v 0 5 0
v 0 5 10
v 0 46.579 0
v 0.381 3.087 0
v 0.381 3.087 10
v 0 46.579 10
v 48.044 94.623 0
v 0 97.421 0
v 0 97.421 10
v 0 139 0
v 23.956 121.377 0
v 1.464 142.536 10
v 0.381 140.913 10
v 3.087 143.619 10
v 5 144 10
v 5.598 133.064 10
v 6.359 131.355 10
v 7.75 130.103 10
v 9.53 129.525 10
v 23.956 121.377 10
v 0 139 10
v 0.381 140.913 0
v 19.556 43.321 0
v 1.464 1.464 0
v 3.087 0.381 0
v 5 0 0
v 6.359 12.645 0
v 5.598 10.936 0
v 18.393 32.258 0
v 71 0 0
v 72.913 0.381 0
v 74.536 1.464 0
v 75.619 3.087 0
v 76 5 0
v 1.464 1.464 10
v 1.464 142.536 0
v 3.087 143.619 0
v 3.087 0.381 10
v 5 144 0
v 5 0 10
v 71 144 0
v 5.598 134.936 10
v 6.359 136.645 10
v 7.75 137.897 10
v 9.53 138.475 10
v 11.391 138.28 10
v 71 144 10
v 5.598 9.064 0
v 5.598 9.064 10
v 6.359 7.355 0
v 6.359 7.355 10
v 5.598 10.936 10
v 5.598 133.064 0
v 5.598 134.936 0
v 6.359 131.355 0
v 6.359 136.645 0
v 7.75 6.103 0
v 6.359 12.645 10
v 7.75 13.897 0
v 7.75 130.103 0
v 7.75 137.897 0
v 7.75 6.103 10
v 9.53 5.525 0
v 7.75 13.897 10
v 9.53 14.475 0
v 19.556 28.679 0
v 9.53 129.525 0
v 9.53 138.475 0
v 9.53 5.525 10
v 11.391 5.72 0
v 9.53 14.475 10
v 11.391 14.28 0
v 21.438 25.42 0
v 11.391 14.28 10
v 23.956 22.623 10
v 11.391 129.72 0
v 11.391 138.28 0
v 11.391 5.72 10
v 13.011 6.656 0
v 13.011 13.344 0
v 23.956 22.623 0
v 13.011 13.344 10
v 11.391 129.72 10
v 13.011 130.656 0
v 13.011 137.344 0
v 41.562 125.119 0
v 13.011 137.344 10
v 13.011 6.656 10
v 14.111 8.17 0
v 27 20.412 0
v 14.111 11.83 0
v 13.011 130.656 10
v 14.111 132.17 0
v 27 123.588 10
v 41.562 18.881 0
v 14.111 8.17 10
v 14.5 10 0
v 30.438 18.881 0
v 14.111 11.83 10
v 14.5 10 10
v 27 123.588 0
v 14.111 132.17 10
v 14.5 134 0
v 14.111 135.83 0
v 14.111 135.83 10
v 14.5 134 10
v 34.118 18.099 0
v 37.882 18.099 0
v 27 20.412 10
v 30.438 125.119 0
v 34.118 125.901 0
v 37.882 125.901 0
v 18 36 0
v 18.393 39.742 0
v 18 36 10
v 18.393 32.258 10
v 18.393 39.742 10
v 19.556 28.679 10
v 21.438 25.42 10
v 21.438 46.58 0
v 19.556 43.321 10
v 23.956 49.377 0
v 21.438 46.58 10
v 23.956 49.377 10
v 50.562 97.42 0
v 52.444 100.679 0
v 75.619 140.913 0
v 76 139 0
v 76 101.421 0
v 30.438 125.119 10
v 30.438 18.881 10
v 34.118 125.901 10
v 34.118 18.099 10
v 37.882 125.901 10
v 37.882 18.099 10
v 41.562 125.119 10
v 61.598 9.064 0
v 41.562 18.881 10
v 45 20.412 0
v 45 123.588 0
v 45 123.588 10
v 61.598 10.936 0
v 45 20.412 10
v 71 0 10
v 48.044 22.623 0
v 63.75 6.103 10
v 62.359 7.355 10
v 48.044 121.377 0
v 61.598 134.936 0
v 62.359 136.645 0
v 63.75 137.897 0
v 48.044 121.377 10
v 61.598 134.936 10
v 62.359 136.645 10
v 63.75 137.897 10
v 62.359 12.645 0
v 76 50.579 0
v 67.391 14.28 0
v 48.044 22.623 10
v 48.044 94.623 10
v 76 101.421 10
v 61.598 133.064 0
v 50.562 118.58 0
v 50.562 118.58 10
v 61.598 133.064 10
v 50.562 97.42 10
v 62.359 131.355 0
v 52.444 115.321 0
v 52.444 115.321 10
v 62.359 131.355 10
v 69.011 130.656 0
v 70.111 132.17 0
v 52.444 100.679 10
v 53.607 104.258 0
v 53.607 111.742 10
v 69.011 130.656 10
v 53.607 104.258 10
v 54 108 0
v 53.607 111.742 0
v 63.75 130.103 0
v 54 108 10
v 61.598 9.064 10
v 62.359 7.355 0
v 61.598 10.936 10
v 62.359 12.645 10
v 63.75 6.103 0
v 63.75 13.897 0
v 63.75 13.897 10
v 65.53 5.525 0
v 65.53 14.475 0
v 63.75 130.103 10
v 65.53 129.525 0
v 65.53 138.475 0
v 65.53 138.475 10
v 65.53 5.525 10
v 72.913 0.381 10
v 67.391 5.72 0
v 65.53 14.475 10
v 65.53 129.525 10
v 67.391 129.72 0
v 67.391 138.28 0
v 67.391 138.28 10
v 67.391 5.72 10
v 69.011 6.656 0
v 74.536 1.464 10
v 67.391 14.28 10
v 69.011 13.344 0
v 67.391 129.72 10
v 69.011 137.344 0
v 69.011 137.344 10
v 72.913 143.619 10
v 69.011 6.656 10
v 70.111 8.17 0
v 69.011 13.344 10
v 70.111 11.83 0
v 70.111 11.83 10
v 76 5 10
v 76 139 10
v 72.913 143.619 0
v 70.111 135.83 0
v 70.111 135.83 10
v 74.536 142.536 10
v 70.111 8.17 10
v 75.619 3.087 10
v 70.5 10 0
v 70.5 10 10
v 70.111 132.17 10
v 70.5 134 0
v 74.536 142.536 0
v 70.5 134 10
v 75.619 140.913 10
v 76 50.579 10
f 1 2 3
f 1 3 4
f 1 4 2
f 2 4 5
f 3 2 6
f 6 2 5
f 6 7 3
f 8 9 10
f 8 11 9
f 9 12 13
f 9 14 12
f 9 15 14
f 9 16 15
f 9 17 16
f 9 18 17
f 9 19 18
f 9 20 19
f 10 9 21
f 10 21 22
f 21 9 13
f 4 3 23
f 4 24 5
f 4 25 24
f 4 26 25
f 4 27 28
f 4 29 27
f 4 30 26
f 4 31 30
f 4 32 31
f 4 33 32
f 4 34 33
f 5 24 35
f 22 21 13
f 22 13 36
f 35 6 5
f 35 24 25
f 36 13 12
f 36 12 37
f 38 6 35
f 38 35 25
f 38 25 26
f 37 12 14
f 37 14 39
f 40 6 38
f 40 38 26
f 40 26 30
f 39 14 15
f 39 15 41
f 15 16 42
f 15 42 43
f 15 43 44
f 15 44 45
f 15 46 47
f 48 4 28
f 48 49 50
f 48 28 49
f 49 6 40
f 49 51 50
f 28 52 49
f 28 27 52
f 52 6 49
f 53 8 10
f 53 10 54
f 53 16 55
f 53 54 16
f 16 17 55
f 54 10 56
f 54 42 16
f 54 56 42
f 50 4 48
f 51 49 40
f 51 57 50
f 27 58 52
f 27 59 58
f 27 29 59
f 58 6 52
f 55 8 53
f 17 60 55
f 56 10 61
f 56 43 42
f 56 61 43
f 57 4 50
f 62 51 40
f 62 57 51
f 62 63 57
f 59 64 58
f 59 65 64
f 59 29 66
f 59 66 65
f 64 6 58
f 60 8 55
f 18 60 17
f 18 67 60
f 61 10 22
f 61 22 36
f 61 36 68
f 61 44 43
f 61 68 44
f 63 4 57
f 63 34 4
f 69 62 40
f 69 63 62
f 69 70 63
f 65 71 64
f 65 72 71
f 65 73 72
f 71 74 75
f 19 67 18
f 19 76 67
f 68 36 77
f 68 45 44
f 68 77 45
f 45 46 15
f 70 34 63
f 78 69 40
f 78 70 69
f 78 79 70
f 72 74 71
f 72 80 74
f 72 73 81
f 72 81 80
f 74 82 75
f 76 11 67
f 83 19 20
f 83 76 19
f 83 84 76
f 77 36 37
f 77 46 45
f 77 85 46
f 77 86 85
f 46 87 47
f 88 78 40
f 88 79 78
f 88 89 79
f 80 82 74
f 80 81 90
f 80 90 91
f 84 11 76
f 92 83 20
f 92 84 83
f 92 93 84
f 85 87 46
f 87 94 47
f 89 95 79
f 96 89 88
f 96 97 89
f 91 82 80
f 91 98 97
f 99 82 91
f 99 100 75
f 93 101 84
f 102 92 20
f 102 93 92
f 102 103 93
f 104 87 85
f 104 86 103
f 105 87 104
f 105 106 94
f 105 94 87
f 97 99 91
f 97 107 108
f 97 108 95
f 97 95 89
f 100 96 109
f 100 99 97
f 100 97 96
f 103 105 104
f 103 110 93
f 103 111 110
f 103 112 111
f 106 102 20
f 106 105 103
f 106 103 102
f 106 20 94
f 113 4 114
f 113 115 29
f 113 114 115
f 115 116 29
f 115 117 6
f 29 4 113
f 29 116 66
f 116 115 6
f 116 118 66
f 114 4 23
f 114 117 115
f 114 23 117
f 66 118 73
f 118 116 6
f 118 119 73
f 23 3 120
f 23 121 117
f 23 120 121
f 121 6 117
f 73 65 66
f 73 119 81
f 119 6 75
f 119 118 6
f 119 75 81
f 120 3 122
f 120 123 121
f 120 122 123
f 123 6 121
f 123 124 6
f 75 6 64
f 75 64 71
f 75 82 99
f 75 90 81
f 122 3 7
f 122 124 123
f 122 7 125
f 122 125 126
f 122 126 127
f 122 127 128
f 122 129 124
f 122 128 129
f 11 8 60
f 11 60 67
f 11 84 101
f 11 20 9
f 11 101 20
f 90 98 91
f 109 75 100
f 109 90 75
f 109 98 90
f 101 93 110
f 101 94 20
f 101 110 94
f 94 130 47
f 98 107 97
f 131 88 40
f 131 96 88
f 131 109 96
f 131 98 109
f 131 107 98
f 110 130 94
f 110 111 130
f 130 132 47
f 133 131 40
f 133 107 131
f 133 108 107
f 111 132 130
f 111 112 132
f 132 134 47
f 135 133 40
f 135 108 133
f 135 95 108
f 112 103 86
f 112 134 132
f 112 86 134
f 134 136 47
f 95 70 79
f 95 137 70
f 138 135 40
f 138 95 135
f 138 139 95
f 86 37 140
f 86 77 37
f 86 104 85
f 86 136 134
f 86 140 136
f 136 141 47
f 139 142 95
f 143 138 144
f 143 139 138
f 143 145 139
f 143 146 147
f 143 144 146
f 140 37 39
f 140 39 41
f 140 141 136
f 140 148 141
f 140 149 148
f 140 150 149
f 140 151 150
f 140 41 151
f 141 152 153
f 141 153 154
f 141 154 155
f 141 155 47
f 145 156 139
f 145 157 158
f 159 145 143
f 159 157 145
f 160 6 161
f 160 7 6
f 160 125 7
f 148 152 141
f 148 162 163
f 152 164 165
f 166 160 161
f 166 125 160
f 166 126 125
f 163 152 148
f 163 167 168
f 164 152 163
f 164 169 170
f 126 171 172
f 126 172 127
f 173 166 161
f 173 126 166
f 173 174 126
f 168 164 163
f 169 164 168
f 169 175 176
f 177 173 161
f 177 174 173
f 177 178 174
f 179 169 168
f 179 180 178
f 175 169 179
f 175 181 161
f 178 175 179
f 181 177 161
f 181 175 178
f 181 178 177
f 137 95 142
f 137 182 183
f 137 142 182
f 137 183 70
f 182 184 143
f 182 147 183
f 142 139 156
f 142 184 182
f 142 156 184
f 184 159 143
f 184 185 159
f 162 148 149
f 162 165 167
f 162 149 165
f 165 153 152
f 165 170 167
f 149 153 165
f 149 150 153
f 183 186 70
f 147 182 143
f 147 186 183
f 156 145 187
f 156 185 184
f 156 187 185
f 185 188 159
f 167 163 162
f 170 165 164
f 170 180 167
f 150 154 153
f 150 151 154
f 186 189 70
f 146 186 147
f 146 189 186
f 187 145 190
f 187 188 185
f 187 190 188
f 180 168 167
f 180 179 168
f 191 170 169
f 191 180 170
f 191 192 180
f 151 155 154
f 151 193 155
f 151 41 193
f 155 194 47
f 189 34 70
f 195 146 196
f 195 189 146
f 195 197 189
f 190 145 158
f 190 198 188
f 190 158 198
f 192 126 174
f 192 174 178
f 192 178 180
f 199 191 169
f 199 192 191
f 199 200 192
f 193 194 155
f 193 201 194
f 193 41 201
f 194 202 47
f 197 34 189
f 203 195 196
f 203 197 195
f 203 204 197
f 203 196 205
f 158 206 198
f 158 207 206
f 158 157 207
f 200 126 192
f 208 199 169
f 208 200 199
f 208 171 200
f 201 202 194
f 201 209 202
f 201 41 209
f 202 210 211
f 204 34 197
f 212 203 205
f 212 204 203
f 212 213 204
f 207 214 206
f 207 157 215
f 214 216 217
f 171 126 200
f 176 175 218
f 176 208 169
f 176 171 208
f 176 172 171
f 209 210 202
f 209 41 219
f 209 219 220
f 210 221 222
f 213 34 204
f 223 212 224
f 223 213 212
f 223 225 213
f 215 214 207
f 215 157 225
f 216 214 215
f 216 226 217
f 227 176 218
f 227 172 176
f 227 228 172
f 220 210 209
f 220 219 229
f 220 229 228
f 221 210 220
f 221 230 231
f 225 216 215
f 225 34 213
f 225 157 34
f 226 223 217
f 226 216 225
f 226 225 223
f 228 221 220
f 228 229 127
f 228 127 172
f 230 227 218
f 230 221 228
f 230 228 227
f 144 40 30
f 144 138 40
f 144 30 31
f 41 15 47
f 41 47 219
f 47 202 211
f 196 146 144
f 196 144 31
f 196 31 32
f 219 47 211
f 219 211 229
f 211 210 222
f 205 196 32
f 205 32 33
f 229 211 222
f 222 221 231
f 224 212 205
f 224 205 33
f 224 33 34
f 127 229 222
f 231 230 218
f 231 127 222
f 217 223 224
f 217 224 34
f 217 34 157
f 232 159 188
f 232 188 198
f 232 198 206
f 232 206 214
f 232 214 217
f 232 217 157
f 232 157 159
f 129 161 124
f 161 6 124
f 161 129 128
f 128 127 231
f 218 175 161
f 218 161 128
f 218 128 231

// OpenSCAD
hole_diameter  = 36;
wall_width     = 20;
thickness      =  5;
rounded_corner =  5;

module minkowski_cube() {
    translate( [ rounded_corner, rounded_corner, 0 ] )
    minkowski() {
        cube( [ hole_diameter + 2*wall_width - 2*rounded_corner, 4*hole_diameter - 2*rounded_corner, thickness ] );
        cylinder( r=rounded_corner, h=thickness );
    }
}

module cylinder_hull() {
    hull() {
        cylinder( d=hole_diameter, h=4*thickness );
        translate( [ hole_diameter+wall_width, hole_diameter+wall_width, 0 ] )
            cylinder( d=hole_diameter, h=4*thickness );
    }
}

difference() {
    minkowski_cube();
    translate( [ hole_diameter, hole_diameter, -thickness] ) cylinder_hull();
    translate( [ hole_diameter, 3*hole_diameter, -thickness] ) rotate( [0, 0, 180] ) cylinder_hull();
    translate( [ 0.5*wall_width, 0.5*wall_width, -thickness ]) cylinder( d = (1/4)*hole_diameter, h = 4*thickness );
    translate( [ hole_diameter + 1.5*wall_width, 0.5*wall_width, -thickness ]) cylinder( d = (1/4)*hole_diameter, h = 4*thickness );
    translate( [ 0.5*wall_width, 4*hole_diameter - 0.5*wall_width, -thickness ]) cylinder( d = (1/4)*hole_diameter, h = 4*thickness );
    translate( [ hole_diameter + 1.5*wall_width, 4*hole_diameter - 0.5*wall_width, -thickness ]) cylinder( d = (1/4)*hole_diameter, h = 4*thickness );
}
